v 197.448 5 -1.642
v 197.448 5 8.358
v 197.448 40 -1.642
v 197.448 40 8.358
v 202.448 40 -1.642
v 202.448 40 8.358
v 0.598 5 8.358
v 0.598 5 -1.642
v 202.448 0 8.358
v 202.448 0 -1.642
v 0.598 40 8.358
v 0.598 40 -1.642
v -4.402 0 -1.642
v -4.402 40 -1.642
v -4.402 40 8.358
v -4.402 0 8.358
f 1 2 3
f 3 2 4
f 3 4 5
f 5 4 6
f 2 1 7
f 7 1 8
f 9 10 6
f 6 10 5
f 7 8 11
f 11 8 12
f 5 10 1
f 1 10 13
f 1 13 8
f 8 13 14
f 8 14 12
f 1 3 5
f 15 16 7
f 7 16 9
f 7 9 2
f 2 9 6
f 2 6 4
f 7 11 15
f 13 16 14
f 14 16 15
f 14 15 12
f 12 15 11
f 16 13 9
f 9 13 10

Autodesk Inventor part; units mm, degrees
ref_plane "YZ Plane" through (0, 0, 0) normal (1, 0, 0) x (0, 1, 0)
ref_plane "XZ Plane" through (0, 0, 0) normal (0, 1, 0) x (-1, 0, 0)
ref_plane "XY Plane" through (0, 0, 0) normal (0, 0, 1) x (1, 0, 0)
sketch "Sketch1" plane through (0, 0, 0) normal (0, 1, 0) x (-1, 0, 0)
  line L0 (4.4017, 8.3575) -> (-0.5983, 8.3575)
  line L1 (-0.5983, 8.3575) -> (-0.5983, -1.6425)
  line L2 (-0.5983, -1.6425) -> (4.4017, -1.6425)
  line L3 (4.4017, -1.6425) -> (4.4017, 8.3575)
  point P0 (0, 0)
  dimension "d0" = 5
  dimension "d1" = 10
extrude "Extrusion1" add sketch "Sketch1" along normal blind 40
sketch "Sketch2" plane through (0.5983, 0, 8.3575) normal (1, 0, 0) x (0, 0, -1)
  line L0 (10, 0) -> (0, 0) projected
  line L1 (0, 0) -> (10, 0)
  line L2 (10, 0) -> (10, 5)
  line L3 (10, 5) -> (0, 5)
  line L4 (0, 5) -> (0, 0)
  point P0 (8.3575, 0)
  dimension "d4" = 5
extrude "Extrusion2" add sketch "Sketch2" along normal blind 201.85
sketch "Sketch3" plane through (202.4483, 0, 8.3575) normal (1, 0, 0) x (0, 0, -1)
  point P0 (8.3575, 0)
sketch "Sketch4" plane through (0.5983, 5, 8.3575) normal (0, 1, 0) x (1, 0, 0)
  line L0 (-5, 0) -> (201.85, 0) projected
  line L1 (-5, 10) -> (201.85, 10) projected
  line L2 (201.85, 0) -> (196.85, 0)
  line L3 (196.85, 0) -> (196.85, 10)
  line L4 (196.85, 10) -> (201.85, 10)
  line L5 (201.85, 10) -> (201.85, 0)
  point P0 (-0.5983, 8.3575)
  point P1 (196.85, 0)
  dimension "d7" = 5
extrude "Extrusion3" add sketch "Sketch4" along normal blind 35
properties part number "tester7.75"
